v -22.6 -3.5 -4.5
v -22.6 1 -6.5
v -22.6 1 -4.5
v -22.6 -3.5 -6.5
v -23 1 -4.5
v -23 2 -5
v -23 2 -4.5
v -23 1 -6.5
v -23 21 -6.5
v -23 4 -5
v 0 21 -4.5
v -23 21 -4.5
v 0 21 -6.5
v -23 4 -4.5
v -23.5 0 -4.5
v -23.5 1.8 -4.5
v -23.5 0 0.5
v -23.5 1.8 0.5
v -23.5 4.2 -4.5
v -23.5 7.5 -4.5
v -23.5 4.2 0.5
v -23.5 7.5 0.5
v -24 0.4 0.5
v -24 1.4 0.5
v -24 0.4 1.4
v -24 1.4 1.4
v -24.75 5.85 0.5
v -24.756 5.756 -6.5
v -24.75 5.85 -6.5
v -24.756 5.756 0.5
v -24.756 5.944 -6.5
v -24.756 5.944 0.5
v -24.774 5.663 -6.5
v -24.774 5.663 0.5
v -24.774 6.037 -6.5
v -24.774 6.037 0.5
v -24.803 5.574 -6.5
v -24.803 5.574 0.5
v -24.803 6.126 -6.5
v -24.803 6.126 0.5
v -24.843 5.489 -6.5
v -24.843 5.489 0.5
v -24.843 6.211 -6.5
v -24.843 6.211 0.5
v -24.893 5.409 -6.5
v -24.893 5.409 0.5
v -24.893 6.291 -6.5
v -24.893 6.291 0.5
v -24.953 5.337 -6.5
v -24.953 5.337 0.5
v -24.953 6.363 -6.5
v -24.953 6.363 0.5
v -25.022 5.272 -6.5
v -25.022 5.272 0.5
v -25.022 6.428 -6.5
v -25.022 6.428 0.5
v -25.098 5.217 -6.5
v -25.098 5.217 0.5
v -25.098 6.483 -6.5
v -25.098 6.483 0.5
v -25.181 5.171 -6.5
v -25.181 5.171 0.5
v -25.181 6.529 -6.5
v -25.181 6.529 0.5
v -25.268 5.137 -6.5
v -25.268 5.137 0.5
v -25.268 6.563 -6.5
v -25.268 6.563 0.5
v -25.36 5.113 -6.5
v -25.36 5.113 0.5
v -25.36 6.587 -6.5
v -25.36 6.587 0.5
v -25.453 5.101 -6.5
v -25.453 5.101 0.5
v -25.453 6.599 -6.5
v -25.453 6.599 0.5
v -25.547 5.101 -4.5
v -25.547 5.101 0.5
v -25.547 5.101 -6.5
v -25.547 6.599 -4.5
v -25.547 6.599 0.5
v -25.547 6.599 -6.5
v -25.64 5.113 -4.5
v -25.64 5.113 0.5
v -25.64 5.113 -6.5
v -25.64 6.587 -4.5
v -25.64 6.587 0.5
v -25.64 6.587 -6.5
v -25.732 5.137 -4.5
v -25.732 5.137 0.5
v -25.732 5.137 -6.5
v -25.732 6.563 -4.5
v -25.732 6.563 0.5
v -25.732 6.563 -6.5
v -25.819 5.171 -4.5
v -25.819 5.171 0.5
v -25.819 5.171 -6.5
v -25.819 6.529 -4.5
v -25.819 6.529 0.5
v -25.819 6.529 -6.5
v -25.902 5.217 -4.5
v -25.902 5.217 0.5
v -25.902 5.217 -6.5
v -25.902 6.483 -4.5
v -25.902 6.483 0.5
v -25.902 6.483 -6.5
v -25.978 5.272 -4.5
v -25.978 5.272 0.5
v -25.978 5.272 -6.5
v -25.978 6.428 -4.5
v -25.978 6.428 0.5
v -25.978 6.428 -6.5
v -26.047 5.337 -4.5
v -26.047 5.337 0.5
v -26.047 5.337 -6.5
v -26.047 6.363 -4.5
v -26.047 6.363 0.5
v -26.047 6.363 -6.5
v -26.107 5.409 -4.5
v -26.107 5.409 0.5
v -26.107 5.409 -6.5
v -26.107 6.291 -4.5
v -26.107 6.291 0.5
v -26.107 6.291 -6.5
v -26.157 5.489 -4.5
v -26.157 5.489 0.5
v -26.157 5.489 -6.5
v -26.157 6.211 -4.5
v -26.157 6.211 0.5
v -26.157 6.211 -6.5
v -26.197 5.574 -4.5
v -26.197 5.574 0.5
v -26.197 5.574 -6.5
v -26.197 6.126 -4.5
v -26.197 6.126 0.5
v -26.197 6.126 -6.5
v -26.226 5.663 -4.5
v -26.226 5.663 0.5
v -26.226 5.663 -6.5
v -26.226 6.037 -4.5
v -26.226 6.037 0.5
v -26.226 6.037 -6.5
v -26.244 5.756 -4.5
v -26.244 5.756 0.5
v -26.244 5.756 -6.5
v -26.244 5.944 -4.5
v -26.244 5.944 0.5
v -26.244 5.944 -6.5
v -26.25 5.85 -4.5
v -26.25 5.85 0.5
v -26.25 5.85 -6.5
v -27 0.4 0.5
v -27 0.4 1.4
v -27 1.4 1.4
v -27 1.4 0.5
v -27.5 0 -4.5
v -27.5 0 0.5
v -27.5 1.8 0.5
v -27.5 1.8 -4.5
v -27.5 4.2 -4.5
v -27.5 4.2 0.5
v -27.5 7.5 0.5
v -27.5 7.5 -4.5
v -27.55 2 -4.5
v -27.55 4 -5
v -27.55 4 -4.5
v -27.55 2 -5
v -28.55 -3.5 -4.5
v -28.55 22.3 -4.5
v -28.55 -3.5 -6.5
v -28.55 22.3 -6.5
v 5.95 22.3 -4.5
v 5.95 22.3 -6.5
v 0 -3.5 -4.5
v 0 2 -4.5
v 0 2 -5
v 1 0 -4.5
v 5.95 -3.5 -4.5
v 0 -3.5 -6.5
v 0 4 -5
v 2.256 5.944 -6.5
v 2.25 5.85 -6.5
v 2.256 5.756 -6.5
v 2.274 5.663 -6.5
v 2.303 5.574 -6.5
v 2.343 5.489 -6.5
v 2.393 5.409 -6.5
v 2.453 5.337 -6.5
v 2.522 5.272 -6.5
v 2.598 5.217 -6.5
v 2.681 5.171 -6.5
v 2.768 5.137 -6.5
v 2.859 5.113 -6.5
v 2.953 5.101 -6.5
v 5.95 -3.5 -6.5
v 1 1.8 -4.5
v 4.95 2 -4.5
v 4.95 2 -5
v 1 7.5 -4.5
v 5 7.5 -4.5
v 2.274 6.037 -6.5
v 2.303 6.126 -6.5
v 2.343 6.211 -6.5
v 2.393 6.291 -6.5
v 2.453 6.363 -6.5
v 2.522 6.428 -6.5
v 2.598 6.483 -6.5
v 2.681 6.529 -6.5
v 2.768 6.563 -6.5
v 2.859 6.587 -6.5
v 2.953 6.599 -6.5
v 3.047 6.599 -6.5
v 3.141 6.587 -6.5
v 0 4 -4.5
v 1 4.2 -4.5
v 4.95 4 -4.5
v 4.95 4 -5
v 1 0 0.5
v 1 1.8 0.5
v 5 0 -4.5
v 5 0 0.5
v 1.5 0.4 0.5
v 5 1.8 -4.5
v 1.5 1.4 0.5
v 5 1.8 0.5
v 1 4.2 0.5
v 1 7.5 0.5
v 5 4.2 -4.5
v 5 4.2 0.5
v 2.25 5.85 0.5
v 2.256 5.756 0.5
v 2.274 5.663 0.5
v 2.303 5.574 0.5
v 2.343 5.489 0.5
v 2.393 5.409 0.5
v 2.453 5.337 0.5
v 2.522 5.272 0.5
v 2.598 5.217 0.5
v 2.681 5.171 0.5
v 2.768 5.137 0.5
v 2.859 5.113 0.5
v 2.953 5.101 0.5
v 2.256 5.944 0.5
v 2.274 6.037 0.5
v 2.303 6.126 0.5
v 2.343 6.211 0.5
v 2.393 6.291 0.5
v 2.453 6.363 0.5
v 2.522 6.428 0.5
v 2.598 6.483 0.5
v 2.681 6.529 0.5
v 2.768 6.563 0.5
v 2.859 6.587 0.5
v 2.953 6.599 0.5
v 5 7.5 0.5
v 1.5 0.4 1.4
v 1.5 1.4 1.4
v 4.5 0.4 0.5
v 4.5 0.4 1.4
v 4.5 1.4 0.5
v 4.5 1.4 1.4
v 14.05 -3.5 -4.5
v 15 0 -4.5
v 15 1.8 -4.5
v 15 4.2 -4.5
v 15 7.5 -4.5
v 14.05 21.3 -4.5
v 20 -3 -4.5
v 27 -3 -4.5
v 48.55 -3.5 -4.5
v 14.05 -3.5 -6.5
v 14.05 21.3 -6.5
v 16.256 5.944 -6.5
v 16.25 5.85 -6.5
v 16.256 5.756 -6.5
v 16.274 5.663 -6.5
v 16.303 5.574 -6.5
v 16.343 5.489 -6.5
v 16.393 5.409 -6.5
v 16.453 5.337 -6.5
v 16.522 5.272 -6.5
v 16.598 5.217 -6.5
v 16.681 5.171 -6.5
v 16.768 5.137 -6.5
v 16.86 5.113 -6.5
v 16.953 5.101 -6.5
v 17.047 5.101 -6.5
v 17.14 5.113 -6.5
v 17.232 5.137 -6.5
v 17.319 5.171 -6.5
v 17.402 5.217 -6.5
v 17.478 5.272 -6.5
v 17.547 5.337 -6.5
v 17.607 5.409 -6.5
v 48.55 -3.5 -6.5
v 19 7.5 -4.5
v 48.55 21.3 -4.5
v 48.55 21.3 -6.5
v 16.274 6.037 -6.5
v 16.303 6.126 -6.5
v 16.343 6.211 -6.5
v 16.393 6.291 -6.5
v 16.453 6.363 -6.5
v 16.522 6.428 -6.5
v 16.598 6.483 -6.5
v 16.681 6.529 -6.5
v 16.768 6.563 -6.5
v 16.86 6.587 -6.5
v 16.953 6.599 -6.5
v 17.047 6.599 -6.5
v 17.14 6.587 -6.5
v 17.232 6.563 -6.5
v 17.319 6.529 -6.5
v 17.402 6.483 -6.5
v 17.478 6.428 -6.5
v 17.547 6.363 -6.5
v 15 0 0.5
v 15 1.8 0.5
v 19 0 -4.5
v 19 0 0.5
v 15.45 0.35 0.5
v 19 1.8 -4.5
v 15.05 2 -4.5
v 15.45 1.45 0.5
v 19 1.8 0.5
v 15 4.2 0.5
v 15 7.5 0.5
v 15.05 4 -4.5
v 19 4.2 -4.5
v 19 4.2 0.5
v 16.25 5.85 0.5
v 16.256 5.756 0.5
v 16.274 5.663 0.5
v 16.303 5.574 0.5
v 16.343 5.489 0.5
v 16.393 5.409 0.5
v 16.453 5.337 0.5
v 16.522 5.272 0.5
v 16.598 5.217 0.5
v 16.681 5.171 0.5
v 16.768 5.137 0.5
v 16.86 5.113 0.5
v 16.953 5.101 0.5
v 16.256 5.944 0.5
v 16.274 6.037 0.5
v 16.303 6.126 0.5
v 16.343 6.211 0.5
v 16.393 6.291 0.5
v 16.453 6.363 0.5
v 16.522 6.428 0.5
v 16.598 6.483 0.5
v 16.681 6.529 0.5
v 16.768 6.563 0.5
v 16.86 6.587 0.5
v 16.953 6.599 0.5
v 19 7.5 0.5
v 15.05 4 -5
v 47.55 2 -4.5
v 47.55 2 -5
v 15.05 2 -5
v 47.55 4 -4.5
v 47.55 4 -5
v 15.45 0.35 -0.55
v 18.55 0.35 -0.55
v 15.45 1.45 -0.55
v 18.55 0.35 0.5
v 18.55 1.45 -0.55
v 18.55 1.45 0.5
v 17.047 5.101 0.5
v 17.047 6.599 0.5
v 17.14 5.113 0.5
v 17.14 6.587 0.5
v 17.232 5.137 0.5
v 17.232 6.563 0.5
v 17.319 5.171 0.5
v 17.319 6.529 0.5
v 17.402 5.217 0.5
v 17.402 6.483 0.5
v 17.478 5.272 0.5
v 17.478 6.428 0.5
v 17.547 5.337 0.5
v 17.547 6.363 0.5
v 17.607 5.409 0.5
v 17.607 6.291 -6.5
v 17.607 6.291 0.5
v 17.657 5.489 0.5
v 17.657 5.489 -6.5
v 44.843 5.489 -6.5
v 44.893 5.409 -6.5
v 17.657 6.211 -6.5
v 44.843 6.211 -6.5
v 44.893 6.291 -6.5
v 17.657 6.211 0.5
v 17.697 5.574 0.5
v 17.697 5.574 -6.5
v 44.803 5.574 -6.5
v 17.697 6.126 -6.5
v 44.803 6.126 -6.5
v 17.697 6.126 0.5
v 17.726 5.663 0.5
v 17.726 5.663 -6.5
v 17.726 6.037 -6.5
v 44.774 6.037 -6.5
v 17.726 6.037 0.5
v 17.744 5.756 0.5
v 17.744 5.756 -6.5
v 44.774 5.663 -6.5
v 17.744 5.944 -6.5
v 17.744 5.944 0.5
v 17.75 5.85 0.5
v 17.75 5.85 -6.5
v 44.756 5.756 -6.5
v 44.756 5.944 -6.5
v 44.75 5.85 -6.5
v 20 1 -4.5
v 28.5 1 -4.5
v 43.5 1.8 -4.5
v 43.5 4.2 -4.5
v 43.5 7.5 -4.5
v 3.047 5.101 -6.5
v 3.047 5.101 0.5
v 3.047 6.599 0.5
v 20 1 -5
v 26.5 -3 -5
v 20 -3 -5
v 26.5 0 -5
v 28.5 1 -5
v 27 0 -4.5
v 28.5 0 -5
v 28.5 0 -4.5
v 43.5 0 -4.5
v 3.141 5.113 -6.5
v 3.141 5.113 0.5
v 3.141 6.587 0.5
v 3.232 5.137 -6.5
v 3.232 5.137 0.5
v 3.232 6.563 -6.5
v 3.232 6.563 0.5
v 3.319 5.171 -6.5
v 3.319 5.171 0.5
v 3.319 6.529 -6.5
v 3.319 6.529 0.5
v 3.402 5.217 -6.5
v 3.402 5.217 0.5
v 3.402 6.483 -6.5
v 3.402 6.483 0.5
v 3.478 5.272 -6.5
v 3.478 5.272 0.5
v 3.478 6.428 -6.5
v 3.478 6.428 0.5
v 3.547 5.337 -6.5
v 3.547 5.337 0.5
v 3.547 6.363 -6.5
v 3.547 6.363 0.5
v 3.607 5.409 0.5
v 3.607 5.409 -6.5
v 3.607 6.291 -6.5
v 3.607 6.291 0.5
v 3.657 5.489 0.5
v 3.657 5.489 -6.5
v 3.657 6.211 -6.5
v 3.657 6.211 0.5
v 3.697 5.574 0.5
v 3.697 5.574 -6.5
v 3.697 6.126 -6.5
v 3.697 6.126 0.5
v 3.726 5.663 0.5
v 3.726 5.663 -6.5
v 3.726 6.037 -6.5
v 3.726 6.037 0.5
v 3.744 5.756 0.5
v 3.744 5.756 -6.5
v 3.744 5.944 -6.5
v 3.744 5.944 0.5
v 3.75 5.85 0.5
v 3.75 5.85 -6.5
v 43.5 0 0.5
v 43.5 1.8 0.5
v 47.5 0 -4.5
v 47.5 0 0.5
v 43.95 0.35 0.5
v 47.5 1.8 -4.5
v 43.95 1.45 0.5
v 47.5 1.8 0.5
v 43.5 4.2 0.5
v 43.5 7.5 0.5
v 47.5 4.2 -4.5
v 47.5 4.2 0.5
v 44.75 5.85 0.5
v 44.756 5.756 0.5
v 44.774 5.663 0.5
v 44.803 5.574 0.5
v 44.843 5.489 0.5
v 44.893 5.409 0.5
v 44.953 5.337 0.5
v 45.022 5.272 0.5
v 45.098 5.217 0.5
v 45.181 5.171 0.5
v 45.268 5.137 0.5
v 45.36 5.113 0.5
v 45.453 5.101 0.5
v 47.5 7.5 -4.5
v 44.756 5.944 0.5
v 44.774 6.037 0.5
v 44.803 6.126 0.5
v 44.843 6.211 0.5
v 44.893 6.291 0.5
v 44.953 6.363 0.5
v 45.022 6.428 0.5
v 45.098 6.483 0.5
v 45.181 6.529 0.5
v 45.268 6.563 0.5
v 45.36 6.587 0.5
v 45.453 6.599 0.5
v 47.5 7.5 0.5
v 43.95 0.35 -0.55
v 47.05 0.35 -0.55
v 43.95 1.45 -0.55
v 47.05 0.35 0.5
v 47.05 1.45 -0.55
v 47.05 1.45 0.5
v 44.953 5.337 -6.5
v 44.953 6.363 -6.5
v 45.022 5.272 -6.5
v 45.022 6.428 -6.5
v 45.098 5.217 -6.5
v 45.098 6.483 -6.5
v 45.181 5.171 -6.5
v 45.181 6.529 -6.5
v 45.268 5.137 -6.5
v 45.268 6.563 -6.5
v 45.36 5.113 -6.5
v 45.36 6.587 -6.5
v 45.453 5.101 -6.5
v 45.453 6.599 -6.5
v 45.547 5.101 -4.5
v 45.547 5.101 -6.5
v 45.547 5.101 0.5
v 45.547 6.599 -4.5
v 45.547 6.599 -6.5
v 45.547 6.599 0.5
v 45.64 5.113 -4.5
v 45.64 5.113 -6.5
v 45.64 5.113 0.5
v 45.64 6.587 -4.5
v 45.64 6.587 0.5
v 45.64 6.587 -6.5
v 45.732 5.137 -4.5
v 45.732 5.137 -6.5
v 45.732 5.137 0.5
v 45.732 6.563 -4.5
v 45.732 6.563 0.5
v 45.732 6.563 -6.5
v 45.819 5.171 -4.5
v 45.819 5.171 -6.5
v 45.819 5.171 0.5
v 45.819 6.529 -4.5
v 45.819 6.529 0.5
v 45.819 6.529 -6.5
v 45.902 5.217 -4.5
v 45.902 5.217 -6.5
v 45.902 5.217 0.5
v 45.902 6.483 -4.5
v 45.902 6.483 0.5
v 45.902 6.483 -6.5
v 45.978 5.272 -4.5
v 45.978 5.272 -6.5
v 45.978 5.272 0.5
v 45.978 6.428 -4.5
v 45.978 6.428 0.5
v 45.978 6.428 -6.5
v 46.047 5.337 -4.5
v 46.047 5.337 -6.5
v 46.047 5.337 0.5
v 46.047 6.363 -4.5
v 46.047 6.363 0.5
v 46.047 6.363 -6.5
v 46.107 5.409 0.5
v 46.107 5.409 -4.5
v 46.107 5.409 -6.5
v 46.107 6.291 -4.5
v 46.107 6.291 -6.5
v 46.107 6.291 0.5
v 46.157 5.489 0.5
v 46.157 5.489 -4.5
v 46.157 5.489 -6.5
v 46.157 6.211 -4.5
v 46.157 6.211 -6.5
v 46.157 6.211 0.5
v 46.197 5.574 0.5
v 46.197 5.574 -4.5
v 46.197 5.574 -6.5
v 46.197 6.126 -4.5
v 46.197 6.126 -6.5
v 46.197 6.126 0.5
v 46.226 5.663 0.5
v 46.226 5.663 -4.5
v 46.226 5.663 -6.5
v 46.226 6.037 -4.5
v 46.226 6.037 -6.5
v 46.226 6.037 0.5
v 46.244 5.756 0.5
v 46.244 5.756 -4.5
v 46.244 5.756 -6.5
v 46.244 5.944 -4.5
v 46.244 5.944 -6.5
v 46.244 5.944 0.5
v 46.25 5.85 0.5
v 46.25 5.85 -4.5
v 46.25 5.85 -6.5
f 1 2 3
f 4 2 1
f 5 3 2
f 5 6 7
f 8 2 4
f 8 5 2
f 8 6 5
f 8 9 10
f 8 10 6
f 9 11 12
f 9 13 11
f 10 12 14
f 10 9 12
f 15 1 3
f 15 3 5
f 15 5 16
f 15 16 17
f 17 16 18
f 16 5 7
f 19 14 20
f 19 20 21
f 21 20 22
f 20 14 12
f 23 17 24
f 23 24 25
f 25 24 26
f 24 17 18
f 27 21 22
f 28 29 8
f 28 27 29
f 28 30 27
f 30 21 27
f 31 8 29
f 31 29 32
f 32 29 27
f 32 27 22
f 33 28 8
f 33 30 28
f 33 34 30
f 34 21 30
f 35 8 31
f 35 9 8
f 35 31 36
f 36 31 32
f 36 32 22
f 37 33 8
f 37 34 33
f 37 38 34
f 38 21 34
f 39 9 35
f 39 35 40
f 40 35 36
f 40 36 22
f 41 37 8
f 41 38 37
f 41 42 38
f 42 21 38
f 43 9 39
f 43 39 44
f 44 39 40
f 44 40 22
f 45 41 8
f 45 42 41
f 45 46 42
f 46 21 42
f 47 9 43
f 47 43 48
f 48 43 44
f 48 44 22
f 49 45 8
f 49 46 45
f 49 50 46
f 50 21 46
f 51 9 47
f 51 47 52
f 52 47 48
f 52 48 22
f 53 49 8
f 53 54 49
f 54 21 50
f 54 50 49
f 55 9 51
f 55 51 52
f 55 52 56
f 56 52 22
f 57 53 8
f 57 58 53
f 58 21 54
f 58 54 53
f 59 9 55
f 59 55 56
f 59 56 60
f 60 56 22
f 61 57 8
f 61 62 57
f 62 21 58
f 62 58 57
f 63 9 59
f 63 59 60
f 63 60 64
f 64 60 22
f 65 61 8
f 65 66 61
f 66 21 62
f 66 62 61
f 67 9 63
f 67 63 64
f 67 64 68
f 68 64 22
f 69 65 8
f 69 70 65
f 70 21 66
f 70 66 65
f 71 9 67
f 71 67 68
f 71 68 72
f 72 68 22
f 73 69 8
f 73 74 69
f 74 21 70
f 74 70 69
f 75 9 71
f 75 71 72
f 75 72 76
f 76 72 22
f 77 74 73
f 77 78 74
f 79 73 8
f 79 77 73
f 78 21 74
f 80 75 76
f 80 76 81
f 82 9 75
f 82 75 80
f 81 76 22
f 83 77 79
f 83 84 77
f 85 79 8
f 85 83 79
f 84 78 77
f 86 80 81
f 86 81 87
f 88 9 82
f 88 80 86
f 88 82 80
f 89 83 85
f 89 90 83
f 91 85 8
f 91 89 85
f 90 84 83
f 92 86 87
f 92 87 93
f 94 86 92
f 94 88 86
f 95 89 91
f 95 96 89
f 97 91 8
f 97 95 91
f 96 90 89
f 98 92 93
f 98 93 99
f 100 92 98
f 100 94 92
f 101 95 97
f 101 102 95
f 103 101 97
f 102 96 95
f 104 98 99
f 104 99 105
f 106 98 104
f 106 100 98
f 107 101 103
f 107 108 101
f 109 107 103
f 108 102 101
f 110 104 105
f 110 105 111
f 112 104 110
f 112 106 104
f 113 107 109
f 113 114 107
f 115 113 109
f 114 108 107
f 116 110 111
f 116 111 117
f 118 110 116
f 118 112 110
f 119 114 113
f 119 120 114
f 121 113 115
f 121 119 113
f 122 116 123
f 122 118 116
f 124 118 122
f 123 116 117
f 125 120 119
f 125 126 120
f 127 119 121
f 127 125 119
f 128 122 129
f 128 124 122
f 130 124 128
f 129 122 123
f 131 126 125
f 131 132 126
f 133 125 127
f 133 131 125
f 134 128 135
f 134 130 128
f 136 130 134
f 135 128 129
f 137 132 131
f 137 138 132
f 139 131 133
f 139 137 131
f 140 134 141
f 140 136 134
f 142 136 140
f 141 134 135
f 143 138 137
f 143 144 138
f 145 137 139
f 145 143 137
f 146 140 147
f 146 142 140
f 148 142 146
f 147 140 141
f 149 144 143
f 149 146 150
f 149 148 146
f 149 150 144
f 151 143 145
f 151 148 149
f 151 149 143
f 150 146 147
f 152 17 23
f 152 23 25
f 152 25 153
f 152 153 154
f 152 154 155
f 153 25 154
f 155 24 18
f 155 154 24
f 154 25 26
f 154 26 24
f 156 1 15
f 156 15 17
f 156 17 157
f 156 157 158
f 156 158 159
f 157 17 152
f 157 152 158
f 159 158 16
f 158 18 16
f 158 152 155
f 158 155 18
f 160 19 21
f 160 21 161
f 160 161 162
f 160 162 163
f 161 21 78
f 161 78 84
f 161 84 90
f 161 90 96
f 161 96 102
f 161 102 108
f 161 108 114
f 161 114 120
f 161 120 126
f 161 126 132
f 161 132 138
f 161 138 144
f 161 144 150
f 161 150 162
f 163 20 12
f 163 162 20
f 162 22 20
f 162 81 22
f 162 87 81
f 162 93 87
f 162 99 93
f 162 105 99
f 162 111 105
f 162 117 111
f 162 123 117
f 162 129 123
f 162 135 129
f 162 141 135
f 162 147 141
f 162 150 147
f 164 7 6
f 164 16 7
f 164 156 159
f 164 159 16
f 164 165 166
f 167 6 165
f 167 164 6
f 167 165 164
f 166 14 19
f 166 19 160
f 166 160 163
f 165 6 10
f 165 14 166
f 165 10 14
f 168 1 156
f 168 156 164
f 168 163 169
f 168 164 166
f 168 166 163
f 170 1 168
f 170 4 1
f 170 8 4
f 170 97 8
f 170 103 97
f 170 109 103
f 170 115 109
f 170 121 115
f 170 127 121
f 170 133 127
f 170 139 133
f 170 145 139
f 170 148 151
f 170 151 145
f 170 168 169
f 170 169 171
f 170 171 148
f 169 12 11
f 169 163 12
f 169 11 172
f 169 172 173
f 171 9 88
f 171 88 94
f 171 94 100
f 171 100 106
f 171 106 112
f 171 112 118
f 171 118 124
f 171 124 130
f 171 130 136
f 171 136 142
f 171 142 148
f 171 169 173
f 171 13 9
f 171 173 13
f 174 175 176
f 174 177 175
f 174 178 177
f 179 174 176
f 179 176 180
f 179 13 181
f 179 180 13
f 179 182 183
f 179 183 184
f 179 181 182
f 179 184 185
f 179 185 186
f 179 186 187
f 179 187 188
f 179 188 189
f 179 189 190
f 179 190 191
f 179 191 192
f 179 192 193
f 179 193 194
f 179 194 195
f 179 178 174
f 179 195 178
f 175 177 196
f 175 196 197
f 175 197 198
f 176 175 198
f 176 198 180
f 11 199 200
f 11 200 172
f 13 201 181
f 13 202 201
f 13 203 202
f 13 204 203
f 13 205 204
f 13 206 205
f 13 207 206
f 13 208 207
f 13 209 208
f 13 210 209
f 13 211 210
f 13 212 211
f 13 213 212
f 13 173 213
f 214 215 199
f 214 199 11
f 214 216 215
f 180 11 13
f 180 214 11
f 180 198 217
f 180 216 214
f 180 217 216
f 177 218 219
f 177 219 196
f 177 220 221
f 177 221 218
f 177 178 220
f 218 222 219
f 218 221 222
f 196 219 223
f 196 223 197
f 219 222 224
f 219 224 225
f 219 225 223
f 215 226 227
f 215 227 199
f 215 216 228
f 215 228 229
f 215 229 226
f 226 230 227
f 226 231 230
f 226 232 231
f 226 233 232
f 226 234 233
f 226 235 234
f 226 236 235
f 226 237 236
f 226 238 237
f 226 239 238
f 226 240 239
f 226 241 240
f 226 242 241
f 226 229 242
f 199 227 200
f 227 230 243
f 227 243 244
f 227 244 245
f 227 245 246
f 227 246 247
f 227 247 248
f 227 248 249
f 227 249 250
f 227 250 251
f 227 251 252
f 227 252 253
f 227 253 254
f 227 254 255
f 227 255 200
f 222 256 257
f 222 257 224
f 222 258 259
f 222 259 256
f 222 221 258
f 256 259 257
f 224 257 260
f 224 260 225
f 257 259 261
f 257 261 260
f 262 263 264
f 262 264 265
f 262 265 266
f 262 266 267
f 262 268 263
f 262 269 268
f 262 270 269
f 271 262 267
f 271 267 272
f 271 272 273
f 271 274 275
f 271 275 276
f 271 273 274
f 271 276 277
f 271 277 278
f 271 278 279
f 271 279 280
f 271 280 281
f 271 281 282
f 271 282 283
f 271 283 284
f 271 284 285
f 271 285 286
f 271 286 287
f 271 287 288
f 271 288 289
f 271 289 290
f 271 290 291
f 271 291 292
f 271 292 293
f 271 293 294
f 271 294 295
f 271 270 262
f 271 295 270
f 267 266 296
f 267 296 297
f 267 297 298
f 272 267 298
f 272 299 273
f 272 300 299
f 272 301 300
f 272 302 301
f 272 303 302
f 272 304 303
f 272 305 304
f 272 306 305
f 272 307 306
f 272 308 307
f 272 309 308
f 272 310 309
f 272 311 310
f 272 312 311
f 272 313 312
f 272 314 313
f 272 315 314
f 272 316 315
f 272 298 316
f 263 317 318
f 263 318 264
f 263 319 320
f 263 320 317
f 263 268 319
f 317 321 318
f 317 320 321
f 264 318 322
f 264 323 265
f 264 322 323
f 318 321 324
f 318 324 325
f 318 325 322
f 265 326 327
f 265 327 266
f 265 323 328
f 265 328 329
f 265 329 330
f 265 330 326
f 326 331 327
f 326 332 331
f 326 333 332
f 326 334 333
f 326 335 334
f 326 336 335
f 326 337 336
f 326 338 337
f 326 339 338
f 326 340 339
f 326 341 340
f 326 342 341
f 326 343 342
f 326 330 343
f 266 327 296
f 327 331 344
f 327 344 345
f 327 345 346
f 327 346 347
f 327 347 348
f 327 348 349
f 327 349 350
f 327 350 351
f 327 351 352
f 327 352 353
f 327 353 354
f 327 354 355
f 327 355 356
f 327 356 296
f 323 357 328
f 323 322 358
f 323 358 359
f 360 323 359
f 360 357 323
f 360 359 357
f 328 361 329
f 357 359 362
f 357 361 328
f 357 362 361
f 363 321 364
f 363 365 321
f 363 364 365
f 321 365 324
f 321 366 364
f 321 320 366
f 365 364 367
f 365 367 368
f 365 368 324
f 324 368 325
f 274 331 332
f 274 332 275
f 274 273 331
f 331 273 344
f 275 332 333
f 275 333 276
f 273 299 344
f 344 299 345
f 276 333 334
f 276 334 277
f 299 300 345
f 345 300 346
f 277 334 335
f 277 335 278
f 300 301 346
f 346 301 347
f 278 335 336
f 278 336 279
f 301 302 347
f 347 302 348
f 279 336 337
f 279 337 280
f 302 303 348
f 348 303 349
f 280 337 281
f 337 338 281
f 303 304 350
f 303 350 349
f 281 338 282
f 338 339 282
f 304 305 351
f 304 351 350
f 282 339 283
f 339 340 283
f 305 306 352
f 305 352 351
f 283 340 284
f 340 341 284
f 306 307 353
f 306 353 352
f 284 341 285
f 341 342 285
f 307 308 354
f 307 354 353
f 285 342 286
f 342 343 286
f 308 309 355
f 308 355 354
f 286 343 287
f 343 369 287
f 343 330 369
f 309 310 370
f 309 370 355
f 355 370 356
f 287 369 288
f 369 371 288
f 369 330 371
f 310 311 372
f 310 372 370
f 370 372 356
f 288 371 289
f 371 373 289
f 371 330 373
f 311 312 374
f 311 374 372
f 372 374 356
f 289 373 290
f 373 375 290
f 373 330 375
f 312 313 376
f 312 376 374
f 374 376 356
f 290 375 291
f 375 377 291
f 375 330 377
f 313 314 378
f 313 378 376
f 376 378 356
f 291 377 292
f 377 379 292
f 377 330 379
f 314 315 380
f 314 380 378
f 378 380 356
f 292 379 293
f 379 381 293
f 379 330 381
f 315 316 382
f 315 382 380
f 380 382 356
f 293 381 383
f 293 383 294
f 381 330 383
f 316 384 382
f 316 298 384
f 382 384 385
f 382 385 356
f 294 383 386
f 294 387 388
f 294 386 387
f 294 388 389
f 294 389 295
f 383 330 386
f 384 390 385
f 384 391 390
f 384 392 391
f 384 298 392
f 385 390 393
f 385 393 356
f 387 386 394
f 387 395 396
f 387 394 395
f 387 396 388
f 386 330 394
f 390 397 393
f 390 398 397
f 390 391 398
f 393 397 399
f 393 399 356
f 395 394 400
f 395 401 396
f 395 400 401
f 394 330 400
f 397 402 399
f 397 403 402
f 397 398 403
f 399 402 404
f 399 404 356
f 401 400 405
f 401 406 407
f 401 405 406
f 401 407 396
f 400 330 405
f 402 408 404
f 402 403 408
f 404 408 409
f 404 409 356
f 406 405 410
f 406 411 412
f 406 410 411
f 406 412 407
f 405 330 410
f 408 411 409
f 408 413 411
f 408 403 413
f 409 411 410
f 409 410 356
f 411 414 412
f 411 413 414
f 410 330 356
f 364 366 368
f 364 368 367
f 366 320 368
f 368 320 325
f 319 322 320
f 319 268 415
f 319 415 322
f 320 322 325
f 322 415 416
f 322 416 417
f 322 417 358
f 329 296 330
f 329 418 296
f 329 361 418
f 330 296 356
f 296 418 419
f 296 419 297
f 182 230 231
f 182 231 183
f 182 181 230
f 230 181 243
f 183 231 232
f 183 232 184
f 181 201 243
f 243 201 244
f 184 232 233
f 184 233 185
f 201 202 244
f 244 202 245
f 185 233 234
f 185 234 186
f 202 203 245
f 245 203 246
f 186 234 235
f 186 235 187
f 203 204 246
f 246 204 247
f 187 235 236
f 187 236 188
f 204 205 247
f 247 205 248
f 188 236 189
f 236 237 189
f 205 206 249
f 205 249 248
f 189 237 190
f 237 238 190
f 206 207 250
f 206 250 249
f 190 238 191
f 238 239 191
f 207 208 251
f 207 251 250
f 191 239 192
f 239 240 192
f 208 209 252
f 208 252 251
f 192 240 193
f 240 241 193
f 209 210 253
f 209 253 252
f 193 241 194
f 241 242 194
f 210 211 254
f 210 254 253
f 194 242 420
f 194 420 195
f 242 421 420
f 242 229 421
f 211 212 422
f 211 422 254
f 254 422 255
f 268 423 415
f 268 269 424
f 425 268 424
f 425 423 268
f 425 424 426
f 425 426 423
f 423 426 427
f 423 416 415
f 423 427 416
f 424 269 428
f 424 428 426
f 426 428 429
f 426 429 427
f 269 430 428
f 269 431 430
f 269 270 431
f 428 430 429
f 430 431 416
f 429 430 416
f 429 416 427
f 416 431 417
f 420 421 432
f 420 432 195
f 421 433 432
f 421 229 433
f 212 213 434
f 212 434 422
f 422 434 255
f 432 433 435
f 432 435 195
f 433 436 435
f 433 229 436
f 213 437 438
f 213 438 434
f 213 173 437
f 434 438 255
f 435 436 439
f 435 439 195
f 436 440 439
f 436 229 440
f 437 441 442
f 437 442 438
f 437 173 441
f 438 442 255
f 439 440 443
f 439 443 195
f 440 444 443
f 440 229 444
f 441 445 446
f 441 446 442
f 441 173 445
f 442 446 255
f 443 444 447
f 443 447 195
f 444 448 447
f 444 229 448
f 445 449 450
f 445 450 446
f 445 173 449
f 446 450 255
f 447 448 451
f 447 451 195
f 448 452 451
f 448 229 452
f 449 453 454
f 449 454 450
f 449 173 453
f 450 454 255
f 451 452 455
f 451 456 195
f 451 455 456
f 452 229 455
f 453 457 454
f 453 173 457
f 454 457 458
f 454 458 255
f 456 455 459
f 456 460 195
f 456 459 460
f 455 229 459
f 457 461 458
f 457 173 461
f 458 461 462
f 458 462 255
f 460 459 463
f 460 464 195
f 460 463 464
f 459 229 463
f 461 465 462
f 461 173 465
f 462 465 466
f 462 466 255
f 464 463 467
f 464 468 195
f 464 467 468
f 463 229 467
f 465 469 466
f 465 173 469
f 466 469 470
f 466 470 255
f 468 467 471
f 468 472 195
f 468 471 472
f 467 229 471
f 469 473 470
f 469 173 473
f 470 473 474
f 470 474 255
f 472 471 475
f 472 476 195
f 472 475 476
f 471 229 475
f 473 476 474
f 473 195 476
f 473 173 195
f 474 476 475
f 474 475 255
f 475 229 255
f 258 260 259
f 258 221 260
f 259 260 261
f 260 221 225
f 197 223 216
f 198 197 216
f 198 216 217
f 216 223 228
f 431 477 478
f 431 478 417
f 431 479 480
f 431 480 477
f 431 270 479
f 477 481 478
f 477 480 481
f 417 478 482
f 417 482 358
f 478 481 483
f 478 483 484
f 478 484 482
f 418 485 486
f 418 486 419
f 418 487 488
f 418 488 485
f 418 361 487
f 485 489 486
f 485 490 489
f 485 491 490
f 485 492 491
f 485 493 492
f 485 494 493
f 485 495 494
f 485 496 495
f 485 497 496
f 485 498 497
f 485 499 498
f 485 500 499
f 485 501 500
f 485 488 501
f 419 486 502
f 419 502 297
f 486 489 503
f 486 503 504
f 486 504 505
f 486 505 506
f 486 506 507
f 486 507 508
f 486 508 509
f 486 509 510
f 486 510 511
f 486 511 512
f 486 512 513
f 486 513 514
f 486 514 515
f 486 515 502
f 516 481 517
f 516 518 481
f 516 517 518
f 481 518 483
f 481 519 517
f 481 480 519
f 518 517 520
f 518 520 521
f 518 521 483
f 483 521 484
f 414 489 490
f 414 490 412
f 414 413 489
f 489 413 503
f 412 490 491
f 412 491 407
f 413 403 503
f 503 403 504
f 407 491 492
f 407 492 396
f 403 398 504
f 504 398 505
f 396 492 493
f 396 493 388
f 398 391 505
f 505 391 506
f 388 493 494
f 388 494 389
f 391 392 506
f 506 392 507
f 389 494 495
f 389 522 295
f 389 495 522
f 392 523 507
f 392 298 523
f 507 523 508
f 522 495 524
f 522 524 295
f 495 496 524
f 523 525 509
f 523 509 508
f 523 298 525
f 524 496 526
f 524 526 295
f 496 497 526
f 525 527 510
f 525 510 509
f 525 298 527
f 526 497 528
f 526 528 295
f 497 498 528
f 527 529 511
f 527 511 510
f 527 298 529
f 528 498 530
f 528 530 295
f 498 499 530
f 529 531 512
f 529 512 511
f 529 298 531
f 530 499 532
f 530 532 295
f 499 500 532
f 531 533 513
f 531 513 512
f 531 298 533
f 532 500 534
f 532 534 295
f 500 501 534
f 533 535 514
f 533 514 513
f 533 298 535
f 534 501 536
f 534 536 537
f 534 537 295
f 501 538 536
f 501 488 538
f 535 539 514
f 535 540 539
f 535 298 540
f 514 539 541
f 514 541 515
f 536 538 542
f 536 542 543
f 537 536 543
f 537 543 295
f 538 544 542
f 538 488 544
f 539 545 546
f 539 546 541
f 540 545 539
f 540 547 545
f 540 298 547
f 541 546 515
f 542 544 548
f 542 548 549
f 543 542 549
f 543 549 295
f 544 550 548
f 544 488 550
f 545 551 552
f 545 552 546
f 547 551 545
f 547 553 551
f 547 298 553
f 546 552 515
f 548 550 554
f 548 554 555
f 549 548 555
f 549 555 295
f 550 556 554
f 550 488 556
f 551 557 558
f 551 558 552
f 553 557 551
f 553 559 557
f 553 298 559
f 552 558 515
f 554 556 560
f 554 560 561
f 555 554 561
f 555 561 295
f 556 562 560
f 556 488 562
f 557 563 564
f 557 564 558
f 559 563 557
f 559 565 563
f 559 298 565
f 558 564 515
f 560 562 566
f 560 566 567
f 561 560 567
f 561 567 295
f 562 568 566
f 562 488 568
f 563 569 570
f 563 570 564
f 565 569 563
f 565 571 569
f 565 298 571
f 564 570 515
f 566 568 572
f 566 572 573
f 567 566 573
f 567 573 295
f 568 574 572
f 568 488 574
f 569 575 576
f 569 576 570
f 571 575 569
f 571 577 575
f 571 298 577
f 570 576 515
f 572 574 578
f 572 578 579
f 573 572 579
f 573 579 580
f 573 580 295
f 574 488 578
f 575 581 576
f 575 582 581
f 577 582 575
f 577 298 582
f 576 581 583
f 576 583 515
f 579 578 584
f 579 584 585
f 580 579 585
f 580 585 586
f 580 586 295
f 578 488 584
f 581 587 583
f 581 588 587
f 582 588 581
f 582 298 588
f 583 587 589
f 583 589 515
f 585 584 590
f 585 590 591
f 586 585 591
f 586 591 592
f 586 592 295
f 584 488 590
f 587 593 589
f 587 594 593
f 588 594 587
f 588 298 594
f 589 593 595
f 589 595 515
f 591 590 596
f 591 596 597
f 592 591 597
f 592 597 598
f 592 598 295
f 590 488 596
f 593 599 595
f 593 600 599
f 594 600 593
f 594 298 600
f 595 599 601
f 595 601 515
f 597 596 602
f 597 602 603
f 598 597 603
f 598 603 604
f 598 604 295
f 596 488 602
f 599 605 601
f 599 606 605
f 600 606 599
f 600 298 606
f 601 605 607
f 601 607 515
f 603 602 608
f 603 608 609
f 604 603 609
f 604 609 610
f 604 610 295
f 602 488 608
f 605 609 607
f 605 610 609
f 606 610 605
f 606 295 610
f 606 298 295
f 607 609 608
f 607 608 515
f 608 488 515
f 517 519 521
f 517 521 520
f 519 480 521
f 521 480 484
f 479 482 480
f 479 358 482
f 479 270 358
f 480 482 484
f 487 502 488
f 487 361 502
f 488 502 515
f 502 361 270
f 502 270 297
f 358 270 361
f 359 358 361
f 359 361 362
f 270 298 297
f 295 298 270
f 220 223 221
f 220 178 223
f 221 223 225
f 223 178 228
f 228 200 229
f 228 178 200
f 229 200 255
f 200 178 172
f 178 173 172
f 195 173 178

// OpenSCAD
// file: ../lib/naca4.scad
// Naca4.scad - library for parametric airfoils of 4 digit NACA series
// Code: Rudolf Huttary, Berlin 
// June 2015
// commercial use prohibited


// general use: for more examples refer to sampler.scad
// naca = naca digits or 3el vector  (default = 12 or [0, 0, .12])
// L    = chord length [mm]      (default= 100)
// N    = # sample points        (default= 81)
// h    = height [mm]            (default= 1)
// open = close at the thin end? (default = true)
// two equivalent example calls
 airfoil(naca = 2408, L = 60, N=1001, h = 30, open = false); 
// airfoil(naca = [.2, .4, .32], L = 60, N=1001, h = 30, open = false); 

module help()
{
  echo(str("\n\nList of signatures in lib:\n=================\n", 
  "module airfoil(naca=2412, L = 100, N = 81, h = 1, open = false) - renders airfoil object\n", 
  "module airfoil(naca=[.2, .4, .12], L = 100, N = 81, h = 1, open = false) - renders airfoil object using percentage for camber,  camber distance and thicknes\n", 
  "function airfoil_data(naca=12, L = 100, N = 81, open = false)\n",
  "=================\n")); 
}

help(); 
// this is the object
module airfoil(naca=12, L = 100, N = 81, h = 1, open = false)
{
  linear_extrude(height = h)
  polygon(points = airfoil_data(naca, L, N, open)); 
}

module hollow_airfoil(lnaca=12, L = 100, N = 81, h = 1, open = false, wall_thickness = 1)
{
    if (open){
        linear_extrude(height = h)

        if (wall_thickness>0){
            difference(){
                polygon(points = airfoil_data(naca, L, N, false));
                offset(delta = - wall_thickness, chamfer = false) polygon(points = airfoil_data(naca, L, N, open = false));
            }
        }
        else{
            difference(){
                offset(delta = - wall_thickness, chamfer = false) polygon(points = airfoil_data(naca, L, N, open = false));
                polygon(points = airfoil_data(naca, L, N, false));
            }
        }
    }
    else{

        linear_extrude(height = abs(wall_thickness))
            polygon(points = airfoil_data(naca, L, N, false)); 

        linear_extrude(height = h)
            difference(){
                polygon(points = airfoil_data(naca, L, N, open));
                offset(delta = - wall_thickness) polygon(points = airfoil_data(naca, L, N, open = false));
            }

        translate([0,0, h - wall_thickness])
            linear_extrude(height = abs(wall_thickness))
                polygon(points = airfoil_data(naca, L, N, false)); 

    }
}


// this is the main function providing the airfoil data
function airfoil_data(naca=12, L = 100, N = 81, open = false) = 
  let(Na = len(naca)!=3?NACA(naca):naca)
  let(A = [.2969, -0.126, -.3516, .2843, open?-0.1015:-0.1036])
  [for (b=[-180:360/(N):179.99]) 
    let (x = (1-cos(b))/2)  
    let(yt = sign(b)*Na[2]/.2*(A*[sqrt(x), x, x*x, x*x*x, x*x*x*x])) 
    Na[0]==0?L*[x, yt]:L*camber(x, yt, Na[0], Na[1], sign(b))];  


function trailing_edge_angle(naca=12, open = false) = 
  let(Na = len(naca)!=3?NACA(naca):naca)
  let(A = [.2969, -0.126, -.3516, .2843, open?-0.1015:-0.1036])
  let (x =0.999)  // set x near to airfoil trailing edge
  let(yt = Na[2]/.2*(A*[sqrt(x), x, x*x, x*x*x, x*x*x*x])) // calculate distance from x-axis at previously set position
  atan2(yt,1-x);  // calculate angle of triangle between end of airfoil. The triange height corresponds to previously calculated distance from x-axis

function surface_angle(x = 0.5, naca=12, open = false) = 
  let(Na = len(naca)!=3?NACA(naca):naca)
  let(A = [0.2969, -0.126, -0.3516, 0.2843, open?-0.1015:-0.1036])
  let(dy = Na[2]/0.2*(A*[(1/2)*(1/sqrt(x)), 1, 2*x, 3*x*x, 4*x*x*x])) // calculate derivative of airfoil function at the x point
  atan(dy);  // calculate  the angle from function derivative

function surface_distance(x = 0.5, naca=12, open = false) = 
  let(Na = len(naca)!=3?NACA(naca):naca)
  let(A = [0.2969, -0.126, -0.3516, 0.2843, open?-0.1015:-0.1036])
  Na[2]/.2*(A*[sqrt(x), x, x*x, x*x*x, x*x*x*x]); // calculate distance from x-axis at previously set position

// helper functions
function NACA(naca) = 
  let (M = floor(naca/1000))
  let (P = floor((naca-M*1000)/100)) 
  [M/100, P/10, floor(naca-M*1000-P*100)/100];  

function camber(x, y, M, P, upper) = 
  let(yc = (x<P)?M/P/P*(2*P*x-x*x): M/(1-P)/(1-P)*(1 - 2*P + 2*P*x -x*x))
  let(dy = (x<P)?2*M/P/P*(P-x):2*M/(1-P)/(1-P)*(P-x))
  let(th = atan(dy))
  [upper ? x - y*sin(th):x + y*sin(th), upper ? yc + y*cos(th):yc - y*cos(th)];
// main file
include <../../parameters.scad>
use <../888_1012.scad>

draft = false;

rotate([0,-90,0])
    888_1012_C();

translate([20,0,0])
    rotate([0,90,0])
        888_1012_B();
